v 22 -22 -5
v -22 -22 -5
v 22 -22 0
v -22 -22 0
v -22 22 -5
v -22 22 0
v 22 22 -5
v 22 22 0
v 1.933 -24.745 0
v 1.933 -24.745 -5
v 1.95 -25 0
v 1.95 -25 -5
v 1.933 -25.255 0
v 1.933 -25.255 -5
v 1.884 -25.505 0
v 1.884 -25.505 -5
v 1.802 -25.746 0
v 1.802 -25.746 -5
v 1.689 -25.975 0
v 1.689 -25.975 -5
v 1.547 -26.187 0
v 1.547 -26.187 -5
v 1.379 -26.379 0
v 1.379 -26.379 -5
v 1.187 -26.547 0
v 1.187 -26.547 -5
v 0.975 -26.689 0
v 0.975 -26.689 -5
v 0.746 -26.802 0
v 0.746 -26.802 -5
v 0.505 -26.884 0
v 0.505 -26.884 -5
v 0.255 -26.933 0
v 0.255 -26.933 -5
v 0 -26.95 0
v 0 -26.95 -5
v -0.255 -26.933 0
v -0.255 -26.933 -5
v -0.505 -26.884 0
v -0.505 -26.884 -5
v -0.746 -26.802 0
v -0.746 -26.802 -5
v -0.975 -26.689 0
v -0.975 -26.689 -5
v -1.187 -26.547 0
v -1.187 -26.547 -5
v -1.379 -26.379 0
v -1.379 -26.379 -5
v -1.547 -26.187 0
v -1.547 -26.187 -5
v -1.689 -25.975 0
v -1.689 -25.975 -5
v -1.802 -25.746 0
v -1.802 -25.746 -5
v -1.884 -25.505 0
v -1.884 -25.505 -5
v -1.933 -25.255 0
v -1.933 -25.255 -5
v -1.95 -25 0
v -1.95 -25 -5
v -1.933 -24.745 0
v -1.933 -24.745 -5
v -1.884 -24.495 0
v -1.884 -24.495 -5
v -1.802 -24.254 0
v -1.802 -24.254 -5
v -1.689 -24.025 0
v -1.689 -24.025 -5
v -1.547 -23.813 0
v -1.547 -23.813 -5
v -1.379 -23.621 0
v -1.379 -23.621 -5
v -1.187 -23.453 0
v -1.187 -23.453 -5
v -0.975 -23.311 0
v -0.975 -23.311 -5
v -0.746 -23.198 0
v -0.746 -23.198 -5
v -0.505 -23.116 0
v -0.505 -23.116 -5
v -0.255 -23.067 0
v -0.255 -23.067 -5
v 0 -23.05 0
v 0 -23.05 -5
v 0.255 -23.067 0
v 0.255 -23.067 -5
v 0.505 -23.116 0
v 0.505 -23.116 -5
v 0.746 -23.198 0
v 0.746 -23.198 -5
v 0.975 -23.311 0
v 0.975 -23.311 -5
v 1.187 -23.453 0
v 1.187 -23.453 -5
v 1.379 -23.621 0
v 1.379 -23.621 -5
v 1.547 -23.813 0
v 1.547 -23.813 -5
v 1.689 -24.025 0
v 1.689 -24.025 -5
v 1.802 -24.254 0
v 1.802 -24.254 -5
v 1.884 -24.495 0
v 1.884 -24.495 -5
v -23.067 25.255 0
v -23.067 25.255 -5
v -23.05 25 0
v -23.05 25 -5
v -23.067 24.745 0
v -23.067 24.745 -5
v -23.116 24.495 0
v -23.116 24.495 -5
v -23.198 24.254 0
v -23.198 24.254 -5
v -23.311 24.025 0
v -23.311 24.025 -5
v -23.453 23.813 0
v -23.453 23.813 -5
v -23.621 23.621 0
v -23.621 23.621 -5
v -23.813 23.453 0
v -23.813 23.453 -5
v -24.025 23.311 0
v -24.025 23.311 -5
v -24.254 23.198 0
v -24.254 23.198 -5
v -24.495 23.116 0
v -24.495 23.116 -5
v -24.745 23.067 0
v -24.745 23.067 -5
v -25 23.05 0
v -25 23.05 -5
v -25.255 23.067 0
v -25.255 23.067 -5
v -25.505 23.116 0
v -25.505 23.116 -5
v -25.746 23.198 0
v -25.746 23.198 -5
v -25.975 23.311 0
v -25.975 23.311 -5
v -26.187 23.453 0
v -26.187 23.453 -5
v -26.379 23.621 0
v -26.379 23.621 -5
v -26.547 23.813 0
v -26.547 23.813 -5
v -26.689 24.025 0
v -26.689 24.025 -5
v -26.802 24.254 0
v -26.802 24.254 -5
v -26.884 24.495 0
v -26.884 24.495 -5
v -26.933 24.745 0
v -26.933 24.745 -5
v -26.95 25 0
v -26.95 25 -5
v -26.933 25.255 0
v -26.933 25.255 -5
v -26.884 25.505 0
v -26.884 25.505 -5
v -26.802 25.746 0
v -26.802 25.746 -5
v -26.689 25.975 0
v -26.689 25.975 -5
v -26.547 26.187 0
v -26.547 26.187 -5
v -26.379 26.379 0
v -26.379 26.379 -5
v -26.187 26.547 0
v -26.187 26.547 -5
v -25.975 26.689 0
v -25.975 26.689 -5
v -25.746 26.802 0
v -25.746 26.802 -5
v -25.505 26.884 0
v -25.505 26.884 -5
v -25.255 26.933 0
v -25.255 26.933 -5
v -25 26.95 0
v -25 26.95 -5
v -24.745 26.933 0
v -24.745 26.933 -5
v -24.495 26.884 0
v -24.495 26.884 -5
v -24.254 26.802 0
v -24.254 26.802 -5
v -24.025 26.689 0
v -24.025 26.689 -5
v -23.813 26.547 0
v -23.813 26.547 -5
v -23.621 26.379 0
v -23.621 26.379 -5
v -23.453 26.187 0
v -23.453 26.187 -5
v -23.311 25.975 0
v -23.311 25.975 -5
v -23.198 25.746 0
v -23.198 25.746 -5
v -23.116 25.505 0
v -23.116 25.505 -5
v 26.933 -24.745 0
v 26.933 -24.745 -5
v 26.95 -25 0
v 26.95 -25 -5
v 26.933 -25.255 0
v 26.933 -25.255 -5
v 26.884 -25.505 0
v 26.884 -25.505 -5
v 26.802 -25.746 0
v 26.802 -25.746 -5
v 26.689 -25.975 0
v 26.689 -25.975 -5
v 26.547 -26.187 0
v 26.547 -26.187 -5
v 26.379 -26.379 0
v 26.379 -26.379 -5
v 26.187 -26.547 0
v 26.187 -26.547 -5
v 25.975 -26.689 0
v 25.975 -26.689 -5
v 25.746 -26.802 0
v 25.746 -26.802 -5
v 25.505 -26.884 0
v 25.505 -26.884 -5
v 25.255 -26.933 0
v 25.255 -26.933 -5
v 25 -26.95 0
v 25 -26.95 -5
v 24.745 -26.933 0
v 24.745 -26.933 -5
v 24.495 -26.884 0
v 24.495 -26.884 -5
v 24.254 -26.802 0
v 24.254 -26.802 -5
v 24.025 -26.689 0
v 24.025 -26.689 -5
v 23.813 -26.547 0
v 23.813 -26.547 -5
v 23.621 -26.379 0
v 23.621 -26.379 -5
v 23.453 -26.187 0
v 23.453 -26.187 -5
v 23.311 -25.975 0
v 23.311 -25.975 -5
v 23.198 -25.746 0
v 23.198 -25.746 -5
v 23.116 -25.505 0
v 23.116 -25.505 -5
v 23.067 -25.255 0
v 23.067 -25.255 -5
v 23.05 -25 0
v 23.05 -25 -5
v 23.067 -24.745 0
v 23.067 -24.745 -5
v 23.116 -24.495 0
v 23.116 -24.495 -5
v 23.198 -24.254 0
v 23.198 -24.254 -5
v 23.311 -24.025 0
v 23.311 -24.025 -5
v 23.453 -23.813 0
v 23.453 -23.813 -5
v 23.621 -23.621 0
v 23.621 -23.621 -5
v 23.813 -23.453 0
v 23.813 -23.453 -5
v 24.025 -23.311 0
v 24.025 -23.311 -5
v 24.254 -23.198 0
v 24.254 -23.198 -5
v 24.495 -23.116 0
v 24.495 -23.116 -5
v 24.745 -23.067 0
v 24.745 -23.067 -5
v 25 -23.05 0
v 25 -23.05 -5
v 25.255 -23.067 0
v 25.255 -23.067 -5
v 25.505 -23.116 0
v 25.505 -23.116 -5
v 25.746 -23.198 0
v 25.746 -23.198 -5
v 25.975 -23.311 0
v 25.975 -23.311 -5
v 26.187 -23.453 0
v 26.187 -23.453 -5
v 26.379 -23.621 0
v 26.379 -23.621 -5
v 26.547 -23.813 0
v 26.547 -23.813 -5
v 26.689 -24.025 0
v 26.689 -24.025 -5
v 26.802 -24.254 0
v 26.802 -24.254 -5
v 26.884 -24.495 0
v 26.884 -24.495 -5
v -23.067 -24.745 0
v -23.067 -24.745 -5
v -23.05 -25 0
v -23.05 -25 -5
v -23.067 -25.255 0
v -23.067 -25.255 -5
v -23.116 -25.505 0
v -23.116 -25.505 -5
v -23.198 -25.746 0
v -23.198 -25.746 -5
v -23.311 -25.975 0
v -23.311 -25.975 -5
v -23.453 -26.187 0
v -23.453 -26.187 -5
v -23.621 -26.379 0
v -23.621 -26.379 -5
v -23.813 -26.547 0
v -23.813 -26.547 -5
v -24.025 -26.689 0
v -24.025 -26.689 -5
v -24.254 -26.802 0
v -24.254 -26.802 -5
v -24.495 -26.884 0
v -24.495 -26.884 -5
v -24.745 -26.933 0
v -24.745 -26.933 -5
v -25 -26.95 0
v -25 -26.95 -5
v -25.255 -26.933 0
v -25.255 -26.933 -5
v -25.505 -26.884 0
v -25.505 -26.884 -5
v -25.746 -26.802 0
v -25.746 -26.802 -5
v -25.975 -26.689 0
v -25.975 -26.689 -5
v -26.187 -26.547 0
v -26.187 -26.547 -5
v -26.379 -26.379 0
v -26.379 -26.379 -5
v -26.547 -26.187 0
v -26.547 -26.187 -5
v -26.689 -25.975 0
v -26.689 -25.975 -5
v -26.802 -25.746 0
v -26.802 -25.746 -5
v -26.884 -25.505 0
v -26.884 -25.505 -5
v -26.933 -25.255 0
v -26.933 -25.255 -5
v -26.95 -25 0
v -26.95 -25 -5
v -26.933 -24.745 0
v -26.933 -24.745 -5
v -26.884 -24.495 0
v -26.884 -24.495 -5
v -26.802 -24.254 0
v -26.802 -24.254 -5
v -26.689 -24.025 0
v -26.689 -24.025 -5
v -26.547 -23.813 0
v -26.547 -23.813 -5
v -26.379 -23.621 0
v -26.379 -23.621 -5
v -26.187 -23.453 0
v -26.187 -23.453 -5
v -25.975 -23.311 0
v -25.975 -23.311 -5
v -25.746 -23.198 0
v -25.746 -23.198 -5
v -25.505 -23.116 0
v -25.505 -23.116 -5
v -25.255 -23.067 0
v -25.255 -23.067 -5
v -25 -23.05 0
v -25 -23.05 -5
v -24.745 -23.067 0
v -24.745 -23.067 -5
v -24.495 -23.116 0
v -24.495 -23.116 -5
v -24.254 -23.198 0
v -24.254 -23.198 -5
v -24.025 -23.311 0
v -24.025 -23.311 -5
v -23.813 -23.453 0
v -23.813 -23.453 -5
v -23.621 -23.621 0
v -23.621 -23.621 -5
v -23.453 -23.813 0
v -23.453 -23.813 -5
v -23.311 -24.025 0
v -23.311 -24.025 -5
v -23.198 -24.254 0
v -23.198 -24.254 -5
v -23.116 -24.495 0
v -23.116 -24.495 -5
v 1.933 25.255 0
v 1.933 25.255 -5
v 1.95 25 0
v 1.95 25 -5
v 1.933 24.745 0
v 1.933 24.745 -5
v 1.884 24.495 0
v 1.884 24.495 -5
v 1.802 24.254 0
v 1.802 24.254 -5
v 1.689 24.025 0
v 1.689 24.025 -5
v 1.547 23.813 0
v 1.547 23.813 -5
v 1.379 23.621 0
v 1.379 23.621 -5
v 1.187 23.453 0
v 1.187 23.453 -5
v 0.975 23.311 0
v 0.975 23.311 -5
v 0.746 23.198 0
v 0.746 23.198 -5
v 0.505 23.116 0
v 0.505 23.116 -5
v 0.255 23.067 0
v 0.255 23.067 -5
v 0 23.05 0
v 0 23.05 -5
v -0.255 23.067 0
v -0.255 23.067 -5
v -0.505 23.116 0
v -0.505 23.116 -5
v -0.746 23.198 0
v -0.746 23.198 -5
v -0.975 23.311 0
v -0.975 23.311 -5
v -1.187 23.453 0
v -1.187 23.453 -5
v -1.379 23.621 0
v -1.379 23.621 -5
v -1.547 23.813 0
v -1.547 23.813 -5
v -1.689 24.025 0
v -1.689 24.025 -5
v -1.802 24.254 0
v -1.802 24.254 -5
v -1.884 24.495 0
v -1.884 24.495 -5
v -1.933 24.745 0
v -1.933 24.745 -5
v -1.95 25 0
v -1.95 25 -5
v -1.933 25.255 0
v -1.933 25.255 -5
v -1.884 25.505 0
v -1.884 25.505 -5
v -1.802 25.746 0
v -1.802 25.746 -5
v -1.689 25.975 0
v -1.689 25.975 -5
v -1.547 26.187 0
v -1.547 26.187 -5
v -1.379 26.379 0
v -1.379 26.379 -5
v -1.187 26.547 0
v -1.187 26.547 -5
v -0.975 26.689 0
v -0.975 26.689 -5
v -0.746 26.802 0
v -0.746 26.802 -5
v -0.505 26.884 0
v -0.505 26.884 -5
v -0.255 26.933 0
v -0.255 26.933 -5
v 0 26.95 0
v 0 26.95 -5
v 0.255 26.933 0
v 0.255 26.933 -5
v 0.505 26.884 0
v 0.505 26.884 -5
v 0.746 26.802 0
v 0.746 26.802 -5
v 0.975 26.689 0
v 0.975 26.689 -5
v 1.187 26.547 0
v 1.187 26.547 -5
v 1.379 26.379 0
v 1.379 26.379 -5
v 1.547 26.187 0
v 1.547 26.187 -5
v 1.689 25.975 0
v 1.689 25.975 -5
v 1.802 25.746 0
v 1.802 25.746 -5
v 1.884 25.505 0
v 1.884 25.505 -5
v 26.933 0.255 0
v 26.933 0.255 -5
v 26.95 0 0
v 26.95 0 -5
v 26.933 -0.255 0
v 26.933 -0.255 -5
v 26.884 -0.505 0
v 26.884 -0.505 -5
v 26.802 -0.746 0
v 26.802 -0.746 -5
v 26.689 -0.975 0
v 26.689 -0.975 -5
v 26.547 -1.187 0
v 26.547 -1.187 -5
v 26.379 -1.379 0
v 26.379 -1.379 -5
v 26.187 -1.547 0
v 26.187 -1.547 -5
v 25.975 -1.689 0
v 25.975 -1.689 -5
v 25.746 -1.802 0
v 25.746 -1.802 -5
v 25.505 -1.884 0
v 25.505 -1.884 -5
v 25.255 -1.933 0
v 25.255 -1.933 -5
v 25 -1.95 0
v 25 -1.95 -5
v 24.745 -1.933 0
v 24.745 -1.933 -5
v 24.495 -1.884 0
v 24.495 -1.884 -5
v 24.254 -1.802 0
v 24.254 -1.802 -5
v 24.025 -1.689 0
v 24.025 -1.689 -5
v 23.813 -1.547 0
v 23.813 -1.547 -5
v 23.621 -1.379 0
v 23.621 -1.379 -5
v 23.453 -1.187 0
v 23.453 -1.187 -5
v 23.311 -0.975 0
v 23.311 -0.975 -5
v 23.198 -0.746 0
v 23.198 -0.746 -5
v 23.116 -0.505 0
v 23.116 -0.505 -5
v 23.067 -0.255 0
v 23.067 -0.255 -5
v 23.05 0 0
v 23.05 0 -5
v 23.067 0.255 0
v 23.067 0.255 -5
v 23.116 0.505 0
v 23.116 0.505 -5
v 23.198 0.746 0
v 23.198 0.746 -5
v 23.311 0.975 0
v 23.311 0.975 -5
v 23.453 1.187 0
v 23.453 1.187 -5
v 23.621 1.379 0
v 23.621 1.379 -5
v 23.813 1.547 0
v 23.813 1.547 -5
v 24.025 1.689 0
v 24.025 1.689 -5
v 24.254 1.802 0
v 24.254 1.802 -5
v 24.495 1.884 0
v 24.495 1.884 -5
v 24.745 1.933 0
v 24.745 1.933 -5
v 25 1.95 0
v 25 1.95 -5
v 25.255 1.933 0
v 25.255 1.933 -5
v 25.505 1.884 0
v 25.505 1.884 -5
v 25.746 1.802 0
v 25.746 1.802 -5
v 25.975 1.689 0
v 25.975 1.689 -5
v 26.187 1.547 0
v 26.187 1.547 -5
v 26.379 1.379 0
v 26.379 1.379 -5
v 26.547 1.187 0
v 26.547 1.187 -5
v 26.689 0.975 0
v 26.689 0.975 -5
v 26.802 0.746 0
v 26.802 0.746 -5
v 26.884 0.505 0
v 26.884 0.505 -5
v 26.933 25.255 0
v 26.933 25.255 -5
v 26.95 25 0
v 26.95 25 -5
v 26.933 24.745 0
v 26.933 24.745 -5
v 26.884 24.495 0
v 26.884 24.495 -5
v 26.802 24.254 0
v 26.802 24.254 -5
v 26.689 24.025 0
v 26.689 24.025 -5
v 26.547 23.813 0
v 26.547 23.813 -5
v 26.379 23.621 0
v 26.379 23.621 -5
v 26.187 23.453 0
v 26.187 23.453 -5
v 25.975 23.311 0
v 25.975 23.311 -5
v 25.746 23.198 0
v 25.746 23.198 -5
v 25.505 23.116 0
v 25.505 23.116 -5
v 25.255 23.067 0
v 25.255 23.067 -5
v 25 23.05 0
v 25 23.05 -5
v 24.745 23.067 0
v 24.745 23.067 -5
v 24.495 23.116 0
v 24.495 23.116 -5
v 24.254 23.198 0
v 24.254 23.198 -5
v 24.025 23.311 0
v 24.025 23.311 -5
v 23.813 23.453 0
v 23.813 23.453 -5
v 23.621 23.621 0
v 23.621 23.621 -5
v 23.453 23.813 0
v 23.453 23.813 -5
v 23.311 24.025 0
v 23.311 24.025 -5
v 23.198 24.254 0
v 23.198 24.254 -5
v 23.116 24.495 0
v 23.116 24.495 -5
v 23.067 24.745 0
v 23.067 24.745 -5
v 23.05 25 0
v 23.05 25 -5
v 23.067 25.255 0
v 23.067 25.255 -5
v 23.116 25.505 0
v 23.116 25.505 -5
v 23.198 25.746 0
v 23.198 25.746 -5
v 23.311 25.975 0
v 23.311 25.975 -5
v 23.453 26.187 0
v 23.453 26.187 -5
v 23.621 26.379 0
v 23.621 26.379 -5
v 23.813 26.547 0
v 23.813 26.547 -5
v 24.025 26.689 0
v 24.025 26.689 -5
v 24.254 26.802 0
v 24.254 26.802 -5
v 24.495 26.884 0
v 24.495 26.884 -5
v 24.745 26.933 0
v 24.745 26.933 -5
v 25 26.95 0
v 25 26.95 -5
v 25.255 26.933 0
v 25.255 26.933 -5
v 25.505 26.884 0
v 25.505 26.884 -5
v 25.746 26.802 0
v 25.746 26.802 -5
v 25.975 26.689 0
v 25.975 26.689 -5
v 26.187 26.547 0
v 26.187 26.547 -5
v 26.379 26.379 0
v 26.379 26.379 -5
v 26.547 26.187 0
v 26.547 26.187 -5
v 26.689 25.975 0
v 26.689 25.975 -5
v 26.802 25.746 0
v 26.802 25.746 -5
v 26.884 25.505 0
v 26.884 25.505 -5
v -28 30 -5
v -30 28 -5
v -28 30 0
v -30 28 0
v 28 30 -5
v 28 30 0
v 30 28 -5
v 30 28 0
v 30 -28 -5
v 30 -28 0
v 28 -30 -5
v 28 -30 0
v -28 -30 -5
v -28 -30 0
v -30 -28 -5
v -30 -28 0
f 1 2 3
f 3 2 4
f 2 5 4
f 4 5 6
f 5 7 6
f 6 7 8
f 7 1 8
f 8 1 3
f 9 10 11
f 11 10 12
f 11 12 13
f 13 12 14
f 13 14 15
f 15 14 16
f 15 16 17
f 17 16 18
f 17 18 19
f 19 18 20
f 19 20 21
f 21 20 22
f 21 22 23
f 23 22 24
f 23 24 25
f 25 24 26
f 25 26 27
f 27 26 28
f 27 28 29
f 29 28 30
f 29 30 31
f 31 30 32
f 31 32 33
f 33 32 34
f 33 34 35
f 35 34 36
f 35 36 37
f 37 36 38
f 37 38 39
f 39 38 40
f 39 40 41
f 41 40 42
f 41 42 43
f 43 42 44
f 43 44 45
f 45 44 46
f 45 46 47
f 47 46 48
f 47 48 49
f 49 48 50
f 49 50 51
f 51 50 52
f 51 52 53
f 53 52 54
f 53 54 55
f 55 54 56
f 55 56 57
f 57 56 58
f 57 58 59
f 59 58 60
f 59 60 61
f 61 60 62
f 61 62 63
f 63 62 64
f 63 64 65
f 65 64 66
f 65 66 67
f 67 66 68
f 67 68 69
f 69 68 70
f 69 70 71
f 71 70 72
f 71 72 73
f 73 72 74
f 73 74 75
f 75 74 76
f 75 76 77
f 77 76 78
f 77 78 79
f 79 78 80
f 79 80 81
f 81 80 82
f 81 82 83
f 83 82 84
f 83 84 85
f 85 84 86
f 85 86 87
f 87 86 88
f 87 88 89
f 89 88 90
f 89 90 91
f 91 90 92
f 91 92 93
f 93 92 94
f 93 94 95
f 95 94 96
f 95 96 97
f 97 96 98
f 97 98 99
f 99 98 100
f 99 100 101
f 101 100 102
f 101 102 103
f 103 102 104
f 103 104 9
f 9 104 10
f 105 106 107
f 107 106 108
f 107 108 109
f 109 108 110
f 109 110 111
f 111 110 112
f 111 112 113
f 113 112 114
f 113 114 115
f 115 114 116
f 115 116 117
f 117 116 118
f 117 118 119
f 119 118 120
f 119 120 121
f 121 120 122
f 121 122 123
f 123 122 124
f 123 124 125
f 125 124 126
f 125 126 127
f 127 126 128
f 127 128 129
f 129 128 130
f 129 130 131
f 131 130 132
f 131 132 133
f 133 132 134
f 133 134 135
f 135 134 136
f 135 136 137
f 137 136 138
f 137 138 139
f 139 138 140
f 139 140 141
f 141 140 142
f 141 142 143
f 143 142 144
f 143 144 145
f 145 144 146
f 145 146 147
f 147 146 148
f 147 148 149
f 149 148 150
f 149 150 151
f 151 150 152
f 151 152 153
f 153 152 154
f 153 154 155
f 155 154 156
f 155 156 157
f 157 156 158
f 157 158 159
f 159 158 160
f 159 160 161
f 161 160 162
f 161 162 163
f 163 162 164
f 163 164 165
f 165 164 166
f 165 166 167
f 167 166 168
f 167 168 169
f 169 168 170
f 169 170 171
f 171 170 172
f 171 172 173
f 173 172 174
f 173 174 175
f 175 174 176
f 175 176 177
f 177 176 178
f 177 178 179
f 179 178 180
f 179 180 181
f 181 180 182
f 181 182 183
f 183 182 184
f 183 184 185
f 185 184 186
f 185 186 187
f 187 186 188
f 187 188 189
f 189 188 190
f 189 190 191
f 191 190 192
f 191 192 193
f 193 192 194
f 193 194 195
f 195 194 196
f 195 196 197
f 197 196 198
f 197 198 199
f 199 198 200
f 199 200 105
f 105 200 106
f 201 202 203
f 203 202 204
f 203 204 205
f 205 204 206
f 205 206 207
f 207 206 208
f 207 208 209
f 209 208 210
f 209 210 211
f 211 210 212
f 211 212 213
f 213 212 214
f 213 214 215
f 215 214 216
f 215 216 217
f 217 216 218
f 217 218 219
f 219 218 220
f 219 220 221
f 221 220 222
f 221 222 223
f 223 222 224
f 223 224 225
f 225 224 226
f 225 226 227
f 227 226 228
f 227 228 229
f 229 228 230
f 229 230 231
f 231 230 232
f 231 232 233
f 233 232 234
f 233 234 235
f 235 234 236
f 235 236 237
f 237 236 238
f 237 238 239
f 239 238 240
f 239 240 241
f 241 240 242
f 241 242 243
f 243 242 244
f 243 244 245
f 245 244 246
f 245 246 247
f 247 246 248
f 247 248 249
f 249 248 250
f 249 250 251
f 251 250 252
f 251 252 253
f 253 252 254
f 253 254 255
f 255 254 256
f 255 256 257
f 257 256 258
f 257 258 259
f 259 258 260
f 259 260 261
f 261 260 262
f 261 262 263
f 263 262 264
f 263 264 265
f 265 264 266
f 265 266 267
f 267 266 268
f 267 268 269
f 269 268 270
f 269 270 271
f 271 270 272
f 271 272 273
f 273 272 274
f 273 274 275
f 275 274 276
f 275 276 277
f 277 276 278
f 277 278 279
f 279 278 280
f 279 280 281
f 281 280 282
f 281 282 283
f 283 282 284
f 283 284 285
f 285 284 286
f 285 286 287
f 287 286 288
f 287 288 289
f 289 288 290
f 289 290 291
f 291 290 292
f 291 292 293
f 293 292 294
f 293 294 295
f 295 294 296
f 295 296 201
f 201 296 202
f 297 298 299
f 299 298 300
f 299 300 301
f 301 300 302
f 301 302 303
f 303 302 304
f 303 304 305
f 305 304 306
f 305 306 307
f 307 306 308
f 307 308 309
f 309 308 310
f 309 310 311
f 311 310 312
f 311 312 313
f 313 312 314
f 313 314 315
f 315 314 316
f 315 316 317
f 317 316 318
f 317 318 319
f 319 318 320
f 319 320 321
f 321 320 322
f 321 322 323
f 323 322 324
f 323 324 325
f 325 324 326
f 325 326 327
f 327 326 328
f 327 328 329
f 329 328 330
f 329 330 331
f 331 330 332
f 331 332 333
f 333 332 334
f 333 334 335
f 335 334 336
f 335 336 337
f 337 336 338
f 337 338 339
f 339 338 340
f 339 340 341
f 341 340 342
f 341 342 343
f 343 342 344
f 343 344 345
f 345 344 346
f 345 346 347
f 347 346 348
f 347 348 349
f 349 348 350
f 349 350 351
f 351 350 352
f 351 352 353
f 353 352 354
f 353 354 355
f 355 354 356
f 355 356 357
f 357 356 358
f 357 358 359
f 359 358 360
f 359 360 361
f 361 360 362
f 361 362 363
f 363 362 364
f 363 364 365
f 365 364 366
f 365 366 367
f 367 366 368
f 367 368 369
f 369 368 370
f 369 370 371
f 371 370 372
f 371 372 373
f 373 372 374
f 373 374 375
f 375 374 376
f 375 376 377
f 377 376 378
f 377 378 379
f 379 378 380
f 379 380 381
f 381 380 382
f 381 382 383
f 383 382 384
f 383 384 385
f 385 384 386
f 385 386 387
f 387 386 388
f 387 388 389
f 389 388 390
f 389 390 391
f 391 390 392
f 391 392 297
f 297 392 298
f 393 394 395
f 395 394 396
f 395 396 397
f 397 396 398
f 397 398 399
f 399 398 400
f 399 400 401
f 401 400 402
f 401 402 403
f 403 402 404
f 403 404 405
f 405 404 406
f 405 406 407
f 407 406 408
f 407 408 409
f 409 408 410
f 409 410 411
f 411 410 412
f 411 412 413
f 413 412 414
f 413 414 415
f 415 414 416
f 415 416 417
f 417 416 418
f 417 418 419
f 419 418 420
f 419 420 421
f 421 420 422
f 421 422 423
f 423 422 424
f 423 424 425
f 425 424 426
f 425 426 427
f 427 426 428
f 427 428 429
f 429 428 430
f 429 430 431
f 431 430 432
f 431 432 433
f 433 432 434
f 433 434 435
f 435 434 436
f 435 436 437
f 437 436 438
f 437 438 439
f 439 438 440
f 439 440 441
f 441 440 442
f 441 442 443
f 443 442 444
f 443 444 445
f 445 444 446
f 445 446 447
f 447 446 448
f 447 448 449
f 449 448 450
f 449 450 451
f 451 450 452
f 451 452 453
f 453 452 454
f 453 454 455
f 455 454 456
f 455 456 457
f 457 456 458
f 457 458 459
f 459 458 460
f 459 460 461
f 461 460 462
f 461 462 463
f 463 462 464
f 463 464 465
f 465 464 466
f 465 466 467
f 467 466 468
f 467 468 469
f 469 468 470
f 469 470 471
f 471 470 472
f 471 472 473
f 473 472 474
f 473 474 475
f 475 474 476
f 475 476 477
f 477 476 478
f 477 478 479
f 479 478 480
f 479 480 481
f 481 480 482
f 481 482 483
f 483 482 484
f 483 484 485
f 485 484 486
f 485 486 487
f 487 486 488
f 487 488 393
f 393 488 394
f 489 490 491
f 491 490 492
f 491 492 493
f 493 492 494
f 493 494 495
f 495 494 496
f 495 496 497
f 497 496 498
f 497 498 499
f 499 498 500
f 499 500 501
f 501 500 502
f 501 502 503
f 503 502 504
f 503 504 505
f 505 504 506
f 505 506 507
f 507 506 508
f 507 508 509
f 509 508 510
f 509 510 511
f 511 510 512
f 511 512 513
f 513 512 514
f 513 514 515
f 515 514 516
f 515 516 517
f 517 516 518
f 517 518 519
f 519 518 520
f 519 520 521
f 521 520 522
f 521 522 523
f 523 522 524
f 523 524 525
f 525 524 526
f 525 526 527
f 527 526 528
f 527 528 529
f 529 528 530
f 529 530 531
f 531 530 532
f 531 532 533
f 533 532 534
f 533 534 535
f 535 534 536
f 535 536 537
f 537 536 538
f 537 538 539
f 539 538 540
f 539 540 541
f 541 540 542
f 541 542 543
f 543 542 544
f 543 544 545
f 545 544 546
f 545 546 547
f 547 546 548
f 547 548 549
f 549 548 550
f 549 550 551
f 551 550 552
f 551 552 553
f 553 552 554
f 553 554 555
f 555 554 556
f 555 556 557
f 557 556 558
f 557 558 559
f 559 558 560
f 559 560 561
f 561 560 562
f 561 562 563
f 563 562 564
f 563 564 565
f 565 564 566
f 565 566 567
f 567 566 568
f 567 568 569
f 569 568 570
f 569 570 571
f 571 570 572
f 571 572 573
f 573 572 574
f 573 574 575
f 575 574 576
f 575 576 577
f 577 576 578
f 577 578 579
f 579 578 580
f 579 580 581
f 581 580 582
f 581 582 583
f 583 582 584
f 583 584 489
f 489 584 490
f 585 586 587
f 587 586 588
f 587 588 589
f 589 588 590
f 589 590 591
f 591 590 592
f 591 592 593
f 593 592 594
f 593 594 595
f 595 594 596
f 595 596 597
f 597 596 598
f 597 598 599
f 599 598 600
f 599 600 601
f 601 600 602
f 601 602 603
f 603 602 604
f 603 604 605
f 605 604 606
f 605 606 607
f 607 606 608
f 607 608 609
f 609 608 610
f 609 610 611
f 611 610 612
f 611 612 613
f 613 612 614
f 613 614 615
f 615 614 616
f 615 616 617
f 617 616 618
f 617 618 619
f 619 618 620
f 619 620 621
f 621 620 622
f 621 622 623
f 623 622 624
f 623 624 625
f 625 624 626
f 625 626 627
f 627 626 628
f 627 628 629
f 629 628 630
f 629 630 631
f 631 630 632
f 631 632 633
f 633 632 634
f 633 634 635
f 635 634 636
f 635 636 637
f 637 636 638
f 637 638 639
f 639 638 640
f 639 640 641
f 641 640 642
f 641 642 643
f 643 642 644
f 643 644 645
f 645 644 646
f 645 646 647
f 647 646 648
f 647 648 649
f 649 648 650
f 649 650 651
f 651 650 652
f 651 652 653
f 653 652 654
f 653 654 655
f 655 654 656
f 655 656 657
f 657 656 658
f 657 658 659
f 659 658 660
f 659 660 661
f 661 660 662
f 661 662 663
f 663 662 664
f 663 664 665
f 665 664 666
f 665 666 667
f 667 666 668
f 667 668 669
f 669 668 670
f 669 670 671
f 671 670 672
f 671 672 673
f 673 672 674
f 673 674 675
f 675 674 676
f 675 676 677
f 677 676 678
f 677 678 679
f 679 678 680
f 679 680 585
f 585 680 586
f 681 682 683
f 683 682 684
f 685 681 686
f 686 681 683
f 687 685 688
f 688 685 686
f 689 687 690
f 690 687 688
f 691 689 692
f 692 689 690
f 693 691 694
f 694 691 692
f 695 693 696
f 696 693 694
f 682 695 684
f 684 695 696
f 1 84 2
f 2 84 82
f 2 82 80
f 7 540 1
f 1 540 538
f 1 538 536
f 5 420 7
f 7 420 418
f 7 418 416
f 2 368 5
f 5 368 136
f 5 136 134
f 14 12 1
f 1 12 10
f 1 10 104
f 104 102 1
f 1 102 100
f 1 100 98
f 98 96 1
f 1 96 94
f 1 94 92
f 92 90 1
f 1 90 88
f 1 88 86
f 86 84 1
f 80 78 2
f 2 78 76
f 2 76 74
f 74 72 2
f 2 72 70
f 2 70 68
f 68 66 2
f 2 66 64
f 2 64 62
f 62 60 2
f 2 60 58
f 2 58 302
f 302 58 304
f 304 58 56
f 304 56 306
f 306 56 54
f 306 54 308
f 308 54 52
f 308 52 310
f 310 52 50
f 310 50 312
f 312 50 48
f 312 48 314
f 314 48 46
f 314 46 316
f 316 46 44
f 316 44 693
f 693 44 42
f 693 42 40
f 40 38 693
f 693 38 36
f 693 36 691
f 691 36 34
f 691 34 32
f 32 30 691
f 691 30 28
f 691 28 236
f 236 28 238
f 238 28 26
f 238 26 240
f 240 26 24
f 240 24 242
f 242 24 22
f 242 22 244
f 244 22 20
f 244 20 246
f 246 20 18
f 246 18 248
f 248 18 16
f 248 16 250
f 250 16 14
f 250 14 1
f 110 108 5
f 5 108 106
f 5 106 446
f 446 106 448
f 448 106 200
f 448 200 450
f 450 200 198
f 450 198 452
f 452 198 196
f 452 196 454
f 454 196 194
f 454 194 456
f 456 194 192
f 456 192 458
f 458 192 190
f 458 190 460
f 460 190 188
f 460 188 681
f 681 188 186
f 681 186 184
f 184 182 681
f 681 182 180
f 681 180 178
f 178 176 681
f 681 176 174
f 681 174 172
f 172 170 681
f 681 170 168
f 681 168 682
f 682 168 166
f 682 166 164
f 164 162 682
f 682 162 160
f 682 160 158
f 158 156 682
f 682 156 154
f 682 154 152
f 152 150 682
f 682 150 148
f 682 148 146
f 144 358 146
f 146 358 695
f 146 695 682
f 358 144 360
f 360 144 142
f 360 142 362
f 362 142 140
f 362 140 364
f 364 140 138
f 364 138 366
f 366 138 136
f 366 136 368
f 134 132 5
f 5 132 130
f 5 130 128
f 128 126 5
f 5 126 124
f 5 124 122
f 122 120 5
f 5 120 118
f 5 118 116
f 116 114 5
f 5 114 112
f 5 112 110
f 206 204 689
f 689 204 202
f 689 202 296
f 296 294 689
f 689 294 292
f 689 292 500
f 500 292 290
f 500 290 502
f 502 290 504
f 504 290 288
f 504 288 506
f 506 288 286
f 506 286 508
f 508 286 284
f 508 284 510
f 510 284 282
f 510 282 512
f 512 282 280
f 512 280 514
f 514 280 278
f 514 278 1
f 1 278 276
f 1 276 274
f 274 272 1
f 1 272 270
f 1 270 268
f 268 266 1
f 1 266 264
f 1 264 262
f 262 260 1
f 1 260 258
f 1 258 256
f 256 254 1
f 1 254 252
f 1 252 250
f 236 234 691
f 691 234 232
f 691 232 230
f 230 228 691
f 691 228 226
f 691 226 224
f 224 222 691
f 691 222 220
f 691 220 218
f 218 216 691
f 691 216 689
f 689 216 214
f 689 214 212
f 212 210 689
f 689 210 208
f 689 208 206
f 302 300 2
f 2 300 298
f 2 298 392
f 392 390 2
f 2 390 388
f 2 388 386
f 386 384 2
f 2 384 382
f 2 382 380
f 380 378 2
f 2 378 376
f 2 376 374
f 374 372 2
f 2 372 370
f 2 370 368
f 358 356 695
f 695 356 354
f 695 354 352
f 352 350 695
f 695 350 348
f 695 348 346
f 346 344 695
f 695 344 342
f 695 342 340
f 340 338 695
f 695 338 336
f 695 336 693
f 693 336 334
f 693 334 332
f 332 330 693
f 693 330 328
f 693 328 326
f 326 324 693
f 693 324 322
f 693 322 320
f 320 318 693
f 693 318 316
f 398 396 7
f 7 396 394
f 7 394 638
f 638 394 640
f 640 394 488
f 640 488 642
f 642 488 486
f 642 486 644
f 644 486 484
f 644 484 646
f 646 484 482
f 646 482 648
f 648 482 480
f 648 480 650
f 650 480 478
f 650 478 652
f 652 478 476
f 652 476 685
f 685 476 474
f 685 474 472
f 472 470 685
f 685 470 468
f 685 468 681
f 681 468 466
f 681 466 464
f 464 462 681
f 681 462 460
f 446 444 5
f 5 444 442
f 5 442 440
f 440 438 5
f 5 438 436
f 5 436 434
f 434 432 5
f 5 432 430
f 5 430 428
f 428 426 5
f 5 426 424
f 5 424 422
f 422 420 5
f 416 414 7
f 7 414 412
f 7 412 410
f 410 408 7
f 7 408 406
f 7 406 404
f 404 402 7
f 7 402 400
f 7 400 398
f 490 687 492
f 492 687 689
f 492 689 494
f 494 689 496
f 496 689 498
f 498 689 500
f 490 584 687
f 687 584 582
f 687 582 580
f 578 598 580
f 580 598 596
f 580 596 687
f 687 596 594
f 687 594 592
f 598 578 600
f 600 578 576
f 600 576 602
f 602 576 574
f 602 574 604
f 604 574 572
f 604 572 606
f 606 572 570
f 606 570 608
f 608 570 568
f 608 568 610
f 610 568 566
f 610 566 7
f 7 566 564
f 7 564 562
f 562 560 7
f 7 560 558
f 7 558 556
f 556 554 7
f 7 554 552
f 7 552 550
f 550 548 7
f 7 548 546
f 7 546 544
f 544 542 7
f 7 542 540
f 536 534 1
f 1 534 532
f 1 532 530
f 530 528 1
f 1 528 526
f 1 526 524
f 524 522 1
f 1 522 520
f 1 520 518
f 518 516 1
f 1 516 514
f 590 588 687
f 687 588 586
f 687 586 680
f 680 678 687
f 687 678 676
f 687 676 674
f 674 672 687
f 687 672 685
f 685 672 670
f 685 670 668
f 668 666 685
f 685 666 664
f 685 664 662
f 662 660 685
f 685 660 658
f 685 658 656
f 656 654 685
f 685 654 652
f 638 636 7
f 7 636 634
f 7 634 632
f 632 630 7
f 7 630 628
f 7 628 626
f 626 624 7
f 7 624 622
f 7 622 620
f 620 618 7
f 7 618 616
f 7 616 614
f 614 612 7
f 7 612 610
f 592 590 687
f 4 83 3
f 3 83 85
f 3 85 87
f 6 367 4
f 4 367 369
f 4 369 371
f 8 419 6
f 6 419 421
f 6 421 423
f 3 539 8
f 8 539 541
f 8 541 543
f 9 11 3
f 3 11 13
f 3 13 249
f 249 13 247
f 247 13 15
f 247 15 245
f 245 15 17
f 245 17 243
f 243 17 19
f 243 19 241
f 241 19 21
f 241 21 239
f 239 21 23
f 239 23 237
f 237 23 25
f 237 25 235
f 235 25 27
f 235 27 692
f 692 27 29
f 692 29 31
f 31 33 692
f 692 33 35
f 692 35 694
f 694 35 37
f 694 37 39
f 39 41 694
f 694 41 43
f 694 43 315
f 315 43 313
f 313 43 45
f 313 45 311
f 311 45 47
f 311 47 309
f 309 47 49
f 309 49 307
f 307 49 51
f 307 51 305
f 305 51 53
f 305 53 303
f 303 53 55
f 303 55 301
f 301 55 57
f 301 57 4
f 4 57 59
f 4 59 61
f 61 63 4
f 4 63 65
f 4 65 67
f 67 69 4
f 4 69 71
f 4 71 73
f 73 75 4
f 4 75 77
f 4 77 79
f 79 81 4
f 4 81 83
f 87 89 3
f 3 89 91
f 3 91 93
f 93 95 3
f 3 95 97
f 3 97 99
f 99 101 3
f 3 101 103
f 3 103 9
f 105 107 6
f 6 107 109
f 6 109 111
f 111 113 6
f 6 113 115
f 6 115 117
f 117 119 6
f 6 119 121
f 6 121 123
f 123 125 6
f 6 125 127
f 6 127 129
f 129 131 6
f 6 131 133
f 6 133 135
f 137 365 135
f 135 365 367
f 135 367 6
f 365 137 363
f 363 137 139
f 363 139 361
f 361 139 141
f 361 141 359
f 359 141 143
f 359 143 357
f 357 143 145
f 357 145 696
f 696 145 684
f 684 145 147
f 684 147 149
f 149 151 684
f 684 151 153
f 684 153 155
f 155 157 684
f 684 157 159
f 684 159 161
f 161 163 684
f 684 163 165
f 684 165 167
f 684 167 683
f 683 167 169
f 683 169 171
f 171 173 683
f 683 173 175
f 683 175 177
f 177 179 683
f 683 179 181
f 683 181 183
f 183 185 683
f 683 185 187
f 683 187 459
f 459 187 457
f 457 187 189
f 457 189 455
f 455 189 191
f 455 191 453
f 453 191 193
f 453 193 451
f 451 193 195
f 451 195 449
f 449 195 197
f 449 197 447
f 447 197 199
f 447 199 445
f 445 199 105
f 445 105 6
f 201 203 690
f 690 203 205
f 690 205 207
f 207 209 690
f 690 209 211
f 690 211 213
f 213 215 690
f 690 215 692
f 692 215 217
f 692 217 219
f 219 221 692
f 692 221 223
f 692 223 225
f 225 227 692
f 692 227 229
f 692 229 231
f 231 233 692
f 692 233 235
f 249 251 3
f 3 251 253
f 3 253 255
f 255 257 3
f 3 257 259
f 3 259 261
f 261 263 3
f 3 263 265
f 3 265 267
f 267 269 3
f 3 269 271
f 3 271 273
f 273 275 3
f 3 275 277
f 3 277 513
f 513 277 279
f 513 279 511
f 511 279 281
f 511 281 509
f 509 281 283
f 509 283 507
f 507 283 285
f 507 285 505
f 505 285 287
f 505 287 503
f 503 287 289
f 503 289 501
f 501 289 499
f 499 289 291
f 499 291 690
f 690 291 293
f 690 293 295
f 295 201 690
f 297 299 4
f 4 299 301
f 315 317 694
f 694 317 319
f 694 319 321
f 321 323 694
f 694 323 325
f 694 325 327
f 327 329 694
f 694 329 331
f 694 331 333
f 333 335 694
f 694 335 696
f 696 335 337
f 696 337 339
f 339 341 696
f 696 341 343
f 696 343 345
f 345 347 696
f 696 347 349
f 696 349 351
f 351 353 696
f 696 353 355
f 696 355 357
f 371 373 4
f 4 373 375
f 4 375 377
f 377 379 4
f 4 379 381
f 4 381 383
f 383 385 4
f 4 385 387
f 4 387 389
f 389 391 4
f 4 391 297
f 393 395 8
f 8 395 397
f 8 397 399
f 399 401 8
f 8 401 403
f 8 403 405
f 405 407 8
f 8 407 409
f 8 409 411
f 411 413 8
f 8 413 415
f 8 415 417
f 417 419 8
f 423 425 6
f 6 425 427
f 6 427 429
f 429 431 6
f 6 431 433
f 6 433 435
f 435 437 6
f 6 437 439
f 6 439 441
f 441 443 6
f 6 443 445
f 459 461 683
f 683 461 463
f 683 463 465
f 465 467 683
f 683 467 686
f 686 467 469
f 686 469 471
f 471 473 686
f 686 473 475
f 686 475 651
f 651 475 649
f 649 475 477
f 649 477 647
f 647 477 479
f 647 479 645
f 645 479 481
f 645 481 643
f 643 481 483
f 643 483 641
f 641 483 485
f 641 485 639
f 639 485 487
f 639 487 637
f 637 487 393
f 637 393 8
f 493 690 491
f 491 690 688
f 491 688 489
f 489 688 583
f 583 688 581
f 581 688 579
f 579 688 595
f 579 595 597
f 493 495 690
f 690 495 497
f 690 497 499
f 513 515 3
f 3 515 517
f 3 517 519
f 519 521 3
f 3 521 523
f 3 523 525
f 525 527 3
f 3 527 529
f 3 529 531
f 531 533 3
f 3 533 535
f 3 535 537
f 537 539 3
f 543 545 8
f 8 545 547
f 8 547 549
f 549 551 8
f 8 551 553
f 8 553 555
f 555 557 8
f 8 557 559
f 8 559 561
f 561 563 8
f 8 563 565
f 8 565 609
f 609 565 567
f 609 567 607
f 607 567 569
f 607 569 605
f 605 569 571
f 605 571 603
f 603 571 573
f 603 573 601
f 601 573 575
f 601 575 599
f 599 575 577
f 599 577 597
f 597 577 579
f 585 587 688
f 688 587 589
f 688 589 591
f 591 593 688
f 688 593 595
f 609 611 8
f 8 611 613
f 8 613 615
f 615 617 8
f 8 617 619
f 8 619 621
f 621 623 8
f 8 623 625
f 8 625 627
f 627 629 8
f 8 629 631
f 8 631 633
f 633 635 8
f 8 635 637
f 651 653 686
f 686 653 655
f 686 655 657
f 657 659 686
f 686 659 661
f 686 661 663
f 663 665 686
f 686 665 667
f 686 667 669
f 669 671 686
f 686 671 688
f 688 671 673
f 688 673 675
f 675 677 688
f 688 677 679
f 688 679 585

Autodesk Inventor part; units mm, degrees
ref_plane "YZ Plane" through (0, 0, 0) normal (1, 0, 0) x (0, 1, 0)
ref_plane "XZ Plane" through (0, 0, 0) normal (0, 1, 0) x (-1, 0, 0)
ref_plane "XY Plane" through (0, 0, 0) normal (0, 0, 1) x (1, 0, 0)
ref_plane "Work Plane1" through (0, 0, -5) normal (0, 0, 1) x (1, 0, 0)
sketch "Sketch1" plane through (0, 0, -5) normal (0, 0, 1) x (1, 0, 0)
  line L0 (-45, 22) -> (22, 22) projected
  line L1 (22, 22) -> (22, -22) projected
  line L2 (22, -22) -> (-45, -22) projected
  line L3 (-45, -28) -> (-45, -22) projected
  line L4 (-30, -28) -> (-45, -28) projected
  line L5 (-30, -28) -> (-28, -30) projected
  line L6 (-28, -30) -> (28, -30) projected
  line L7 (28, -30) -> (30, -28) projected
  line L8 (30, -28) -> (30, 28) projected
  line L9 (30, 28) -> (28, 30) projected
  line L10 (28, 30) -> (-28, 30) projected
  line L11 (-28, 30) -> (-30, 28) projected
  line L12 (-30, 28) -> (-45, 28) projected
  line L13 (-45, 22) -> (-45, 28) projected
  circle A0 centre (25, 25) radius 1.95 projected
  circle A1 centre (25, 0) radius 1.95 projected
  circle A2 centre (0, 25) radius 1.95 projected
  circle A3 centre (-25, -25) radius 1.95 projected
  circle A4 centre (25, -25) radius 1.95 projected
  circle A5 centre (-25, 25) radius 1.95 projected
  circle A6 centre (0, -25) radius 1.95 projected
  line L14 (-30, 28) -> (-30, -28)
  line L15 (22, 22) -> (-22, 22)
  line L16 (-22, 22) -> (-22, -22)
  line L17 (-22, -22) -> (22, -22)
  line L18 (22, -22) -> (22, 22)
  point P0 (0, 0)
  dimension "d0" = 44
  dimension "d1" = 44
extrude "Extrusion1" add sketch "Sketch1" along normal blind 5 contours L0 L14 L11 L10 L9 L8 L7 L6 L5 L2 L1 | L16 L2 L14 L0
properties part number "cellSTORM_v5_cellphonespacer"
